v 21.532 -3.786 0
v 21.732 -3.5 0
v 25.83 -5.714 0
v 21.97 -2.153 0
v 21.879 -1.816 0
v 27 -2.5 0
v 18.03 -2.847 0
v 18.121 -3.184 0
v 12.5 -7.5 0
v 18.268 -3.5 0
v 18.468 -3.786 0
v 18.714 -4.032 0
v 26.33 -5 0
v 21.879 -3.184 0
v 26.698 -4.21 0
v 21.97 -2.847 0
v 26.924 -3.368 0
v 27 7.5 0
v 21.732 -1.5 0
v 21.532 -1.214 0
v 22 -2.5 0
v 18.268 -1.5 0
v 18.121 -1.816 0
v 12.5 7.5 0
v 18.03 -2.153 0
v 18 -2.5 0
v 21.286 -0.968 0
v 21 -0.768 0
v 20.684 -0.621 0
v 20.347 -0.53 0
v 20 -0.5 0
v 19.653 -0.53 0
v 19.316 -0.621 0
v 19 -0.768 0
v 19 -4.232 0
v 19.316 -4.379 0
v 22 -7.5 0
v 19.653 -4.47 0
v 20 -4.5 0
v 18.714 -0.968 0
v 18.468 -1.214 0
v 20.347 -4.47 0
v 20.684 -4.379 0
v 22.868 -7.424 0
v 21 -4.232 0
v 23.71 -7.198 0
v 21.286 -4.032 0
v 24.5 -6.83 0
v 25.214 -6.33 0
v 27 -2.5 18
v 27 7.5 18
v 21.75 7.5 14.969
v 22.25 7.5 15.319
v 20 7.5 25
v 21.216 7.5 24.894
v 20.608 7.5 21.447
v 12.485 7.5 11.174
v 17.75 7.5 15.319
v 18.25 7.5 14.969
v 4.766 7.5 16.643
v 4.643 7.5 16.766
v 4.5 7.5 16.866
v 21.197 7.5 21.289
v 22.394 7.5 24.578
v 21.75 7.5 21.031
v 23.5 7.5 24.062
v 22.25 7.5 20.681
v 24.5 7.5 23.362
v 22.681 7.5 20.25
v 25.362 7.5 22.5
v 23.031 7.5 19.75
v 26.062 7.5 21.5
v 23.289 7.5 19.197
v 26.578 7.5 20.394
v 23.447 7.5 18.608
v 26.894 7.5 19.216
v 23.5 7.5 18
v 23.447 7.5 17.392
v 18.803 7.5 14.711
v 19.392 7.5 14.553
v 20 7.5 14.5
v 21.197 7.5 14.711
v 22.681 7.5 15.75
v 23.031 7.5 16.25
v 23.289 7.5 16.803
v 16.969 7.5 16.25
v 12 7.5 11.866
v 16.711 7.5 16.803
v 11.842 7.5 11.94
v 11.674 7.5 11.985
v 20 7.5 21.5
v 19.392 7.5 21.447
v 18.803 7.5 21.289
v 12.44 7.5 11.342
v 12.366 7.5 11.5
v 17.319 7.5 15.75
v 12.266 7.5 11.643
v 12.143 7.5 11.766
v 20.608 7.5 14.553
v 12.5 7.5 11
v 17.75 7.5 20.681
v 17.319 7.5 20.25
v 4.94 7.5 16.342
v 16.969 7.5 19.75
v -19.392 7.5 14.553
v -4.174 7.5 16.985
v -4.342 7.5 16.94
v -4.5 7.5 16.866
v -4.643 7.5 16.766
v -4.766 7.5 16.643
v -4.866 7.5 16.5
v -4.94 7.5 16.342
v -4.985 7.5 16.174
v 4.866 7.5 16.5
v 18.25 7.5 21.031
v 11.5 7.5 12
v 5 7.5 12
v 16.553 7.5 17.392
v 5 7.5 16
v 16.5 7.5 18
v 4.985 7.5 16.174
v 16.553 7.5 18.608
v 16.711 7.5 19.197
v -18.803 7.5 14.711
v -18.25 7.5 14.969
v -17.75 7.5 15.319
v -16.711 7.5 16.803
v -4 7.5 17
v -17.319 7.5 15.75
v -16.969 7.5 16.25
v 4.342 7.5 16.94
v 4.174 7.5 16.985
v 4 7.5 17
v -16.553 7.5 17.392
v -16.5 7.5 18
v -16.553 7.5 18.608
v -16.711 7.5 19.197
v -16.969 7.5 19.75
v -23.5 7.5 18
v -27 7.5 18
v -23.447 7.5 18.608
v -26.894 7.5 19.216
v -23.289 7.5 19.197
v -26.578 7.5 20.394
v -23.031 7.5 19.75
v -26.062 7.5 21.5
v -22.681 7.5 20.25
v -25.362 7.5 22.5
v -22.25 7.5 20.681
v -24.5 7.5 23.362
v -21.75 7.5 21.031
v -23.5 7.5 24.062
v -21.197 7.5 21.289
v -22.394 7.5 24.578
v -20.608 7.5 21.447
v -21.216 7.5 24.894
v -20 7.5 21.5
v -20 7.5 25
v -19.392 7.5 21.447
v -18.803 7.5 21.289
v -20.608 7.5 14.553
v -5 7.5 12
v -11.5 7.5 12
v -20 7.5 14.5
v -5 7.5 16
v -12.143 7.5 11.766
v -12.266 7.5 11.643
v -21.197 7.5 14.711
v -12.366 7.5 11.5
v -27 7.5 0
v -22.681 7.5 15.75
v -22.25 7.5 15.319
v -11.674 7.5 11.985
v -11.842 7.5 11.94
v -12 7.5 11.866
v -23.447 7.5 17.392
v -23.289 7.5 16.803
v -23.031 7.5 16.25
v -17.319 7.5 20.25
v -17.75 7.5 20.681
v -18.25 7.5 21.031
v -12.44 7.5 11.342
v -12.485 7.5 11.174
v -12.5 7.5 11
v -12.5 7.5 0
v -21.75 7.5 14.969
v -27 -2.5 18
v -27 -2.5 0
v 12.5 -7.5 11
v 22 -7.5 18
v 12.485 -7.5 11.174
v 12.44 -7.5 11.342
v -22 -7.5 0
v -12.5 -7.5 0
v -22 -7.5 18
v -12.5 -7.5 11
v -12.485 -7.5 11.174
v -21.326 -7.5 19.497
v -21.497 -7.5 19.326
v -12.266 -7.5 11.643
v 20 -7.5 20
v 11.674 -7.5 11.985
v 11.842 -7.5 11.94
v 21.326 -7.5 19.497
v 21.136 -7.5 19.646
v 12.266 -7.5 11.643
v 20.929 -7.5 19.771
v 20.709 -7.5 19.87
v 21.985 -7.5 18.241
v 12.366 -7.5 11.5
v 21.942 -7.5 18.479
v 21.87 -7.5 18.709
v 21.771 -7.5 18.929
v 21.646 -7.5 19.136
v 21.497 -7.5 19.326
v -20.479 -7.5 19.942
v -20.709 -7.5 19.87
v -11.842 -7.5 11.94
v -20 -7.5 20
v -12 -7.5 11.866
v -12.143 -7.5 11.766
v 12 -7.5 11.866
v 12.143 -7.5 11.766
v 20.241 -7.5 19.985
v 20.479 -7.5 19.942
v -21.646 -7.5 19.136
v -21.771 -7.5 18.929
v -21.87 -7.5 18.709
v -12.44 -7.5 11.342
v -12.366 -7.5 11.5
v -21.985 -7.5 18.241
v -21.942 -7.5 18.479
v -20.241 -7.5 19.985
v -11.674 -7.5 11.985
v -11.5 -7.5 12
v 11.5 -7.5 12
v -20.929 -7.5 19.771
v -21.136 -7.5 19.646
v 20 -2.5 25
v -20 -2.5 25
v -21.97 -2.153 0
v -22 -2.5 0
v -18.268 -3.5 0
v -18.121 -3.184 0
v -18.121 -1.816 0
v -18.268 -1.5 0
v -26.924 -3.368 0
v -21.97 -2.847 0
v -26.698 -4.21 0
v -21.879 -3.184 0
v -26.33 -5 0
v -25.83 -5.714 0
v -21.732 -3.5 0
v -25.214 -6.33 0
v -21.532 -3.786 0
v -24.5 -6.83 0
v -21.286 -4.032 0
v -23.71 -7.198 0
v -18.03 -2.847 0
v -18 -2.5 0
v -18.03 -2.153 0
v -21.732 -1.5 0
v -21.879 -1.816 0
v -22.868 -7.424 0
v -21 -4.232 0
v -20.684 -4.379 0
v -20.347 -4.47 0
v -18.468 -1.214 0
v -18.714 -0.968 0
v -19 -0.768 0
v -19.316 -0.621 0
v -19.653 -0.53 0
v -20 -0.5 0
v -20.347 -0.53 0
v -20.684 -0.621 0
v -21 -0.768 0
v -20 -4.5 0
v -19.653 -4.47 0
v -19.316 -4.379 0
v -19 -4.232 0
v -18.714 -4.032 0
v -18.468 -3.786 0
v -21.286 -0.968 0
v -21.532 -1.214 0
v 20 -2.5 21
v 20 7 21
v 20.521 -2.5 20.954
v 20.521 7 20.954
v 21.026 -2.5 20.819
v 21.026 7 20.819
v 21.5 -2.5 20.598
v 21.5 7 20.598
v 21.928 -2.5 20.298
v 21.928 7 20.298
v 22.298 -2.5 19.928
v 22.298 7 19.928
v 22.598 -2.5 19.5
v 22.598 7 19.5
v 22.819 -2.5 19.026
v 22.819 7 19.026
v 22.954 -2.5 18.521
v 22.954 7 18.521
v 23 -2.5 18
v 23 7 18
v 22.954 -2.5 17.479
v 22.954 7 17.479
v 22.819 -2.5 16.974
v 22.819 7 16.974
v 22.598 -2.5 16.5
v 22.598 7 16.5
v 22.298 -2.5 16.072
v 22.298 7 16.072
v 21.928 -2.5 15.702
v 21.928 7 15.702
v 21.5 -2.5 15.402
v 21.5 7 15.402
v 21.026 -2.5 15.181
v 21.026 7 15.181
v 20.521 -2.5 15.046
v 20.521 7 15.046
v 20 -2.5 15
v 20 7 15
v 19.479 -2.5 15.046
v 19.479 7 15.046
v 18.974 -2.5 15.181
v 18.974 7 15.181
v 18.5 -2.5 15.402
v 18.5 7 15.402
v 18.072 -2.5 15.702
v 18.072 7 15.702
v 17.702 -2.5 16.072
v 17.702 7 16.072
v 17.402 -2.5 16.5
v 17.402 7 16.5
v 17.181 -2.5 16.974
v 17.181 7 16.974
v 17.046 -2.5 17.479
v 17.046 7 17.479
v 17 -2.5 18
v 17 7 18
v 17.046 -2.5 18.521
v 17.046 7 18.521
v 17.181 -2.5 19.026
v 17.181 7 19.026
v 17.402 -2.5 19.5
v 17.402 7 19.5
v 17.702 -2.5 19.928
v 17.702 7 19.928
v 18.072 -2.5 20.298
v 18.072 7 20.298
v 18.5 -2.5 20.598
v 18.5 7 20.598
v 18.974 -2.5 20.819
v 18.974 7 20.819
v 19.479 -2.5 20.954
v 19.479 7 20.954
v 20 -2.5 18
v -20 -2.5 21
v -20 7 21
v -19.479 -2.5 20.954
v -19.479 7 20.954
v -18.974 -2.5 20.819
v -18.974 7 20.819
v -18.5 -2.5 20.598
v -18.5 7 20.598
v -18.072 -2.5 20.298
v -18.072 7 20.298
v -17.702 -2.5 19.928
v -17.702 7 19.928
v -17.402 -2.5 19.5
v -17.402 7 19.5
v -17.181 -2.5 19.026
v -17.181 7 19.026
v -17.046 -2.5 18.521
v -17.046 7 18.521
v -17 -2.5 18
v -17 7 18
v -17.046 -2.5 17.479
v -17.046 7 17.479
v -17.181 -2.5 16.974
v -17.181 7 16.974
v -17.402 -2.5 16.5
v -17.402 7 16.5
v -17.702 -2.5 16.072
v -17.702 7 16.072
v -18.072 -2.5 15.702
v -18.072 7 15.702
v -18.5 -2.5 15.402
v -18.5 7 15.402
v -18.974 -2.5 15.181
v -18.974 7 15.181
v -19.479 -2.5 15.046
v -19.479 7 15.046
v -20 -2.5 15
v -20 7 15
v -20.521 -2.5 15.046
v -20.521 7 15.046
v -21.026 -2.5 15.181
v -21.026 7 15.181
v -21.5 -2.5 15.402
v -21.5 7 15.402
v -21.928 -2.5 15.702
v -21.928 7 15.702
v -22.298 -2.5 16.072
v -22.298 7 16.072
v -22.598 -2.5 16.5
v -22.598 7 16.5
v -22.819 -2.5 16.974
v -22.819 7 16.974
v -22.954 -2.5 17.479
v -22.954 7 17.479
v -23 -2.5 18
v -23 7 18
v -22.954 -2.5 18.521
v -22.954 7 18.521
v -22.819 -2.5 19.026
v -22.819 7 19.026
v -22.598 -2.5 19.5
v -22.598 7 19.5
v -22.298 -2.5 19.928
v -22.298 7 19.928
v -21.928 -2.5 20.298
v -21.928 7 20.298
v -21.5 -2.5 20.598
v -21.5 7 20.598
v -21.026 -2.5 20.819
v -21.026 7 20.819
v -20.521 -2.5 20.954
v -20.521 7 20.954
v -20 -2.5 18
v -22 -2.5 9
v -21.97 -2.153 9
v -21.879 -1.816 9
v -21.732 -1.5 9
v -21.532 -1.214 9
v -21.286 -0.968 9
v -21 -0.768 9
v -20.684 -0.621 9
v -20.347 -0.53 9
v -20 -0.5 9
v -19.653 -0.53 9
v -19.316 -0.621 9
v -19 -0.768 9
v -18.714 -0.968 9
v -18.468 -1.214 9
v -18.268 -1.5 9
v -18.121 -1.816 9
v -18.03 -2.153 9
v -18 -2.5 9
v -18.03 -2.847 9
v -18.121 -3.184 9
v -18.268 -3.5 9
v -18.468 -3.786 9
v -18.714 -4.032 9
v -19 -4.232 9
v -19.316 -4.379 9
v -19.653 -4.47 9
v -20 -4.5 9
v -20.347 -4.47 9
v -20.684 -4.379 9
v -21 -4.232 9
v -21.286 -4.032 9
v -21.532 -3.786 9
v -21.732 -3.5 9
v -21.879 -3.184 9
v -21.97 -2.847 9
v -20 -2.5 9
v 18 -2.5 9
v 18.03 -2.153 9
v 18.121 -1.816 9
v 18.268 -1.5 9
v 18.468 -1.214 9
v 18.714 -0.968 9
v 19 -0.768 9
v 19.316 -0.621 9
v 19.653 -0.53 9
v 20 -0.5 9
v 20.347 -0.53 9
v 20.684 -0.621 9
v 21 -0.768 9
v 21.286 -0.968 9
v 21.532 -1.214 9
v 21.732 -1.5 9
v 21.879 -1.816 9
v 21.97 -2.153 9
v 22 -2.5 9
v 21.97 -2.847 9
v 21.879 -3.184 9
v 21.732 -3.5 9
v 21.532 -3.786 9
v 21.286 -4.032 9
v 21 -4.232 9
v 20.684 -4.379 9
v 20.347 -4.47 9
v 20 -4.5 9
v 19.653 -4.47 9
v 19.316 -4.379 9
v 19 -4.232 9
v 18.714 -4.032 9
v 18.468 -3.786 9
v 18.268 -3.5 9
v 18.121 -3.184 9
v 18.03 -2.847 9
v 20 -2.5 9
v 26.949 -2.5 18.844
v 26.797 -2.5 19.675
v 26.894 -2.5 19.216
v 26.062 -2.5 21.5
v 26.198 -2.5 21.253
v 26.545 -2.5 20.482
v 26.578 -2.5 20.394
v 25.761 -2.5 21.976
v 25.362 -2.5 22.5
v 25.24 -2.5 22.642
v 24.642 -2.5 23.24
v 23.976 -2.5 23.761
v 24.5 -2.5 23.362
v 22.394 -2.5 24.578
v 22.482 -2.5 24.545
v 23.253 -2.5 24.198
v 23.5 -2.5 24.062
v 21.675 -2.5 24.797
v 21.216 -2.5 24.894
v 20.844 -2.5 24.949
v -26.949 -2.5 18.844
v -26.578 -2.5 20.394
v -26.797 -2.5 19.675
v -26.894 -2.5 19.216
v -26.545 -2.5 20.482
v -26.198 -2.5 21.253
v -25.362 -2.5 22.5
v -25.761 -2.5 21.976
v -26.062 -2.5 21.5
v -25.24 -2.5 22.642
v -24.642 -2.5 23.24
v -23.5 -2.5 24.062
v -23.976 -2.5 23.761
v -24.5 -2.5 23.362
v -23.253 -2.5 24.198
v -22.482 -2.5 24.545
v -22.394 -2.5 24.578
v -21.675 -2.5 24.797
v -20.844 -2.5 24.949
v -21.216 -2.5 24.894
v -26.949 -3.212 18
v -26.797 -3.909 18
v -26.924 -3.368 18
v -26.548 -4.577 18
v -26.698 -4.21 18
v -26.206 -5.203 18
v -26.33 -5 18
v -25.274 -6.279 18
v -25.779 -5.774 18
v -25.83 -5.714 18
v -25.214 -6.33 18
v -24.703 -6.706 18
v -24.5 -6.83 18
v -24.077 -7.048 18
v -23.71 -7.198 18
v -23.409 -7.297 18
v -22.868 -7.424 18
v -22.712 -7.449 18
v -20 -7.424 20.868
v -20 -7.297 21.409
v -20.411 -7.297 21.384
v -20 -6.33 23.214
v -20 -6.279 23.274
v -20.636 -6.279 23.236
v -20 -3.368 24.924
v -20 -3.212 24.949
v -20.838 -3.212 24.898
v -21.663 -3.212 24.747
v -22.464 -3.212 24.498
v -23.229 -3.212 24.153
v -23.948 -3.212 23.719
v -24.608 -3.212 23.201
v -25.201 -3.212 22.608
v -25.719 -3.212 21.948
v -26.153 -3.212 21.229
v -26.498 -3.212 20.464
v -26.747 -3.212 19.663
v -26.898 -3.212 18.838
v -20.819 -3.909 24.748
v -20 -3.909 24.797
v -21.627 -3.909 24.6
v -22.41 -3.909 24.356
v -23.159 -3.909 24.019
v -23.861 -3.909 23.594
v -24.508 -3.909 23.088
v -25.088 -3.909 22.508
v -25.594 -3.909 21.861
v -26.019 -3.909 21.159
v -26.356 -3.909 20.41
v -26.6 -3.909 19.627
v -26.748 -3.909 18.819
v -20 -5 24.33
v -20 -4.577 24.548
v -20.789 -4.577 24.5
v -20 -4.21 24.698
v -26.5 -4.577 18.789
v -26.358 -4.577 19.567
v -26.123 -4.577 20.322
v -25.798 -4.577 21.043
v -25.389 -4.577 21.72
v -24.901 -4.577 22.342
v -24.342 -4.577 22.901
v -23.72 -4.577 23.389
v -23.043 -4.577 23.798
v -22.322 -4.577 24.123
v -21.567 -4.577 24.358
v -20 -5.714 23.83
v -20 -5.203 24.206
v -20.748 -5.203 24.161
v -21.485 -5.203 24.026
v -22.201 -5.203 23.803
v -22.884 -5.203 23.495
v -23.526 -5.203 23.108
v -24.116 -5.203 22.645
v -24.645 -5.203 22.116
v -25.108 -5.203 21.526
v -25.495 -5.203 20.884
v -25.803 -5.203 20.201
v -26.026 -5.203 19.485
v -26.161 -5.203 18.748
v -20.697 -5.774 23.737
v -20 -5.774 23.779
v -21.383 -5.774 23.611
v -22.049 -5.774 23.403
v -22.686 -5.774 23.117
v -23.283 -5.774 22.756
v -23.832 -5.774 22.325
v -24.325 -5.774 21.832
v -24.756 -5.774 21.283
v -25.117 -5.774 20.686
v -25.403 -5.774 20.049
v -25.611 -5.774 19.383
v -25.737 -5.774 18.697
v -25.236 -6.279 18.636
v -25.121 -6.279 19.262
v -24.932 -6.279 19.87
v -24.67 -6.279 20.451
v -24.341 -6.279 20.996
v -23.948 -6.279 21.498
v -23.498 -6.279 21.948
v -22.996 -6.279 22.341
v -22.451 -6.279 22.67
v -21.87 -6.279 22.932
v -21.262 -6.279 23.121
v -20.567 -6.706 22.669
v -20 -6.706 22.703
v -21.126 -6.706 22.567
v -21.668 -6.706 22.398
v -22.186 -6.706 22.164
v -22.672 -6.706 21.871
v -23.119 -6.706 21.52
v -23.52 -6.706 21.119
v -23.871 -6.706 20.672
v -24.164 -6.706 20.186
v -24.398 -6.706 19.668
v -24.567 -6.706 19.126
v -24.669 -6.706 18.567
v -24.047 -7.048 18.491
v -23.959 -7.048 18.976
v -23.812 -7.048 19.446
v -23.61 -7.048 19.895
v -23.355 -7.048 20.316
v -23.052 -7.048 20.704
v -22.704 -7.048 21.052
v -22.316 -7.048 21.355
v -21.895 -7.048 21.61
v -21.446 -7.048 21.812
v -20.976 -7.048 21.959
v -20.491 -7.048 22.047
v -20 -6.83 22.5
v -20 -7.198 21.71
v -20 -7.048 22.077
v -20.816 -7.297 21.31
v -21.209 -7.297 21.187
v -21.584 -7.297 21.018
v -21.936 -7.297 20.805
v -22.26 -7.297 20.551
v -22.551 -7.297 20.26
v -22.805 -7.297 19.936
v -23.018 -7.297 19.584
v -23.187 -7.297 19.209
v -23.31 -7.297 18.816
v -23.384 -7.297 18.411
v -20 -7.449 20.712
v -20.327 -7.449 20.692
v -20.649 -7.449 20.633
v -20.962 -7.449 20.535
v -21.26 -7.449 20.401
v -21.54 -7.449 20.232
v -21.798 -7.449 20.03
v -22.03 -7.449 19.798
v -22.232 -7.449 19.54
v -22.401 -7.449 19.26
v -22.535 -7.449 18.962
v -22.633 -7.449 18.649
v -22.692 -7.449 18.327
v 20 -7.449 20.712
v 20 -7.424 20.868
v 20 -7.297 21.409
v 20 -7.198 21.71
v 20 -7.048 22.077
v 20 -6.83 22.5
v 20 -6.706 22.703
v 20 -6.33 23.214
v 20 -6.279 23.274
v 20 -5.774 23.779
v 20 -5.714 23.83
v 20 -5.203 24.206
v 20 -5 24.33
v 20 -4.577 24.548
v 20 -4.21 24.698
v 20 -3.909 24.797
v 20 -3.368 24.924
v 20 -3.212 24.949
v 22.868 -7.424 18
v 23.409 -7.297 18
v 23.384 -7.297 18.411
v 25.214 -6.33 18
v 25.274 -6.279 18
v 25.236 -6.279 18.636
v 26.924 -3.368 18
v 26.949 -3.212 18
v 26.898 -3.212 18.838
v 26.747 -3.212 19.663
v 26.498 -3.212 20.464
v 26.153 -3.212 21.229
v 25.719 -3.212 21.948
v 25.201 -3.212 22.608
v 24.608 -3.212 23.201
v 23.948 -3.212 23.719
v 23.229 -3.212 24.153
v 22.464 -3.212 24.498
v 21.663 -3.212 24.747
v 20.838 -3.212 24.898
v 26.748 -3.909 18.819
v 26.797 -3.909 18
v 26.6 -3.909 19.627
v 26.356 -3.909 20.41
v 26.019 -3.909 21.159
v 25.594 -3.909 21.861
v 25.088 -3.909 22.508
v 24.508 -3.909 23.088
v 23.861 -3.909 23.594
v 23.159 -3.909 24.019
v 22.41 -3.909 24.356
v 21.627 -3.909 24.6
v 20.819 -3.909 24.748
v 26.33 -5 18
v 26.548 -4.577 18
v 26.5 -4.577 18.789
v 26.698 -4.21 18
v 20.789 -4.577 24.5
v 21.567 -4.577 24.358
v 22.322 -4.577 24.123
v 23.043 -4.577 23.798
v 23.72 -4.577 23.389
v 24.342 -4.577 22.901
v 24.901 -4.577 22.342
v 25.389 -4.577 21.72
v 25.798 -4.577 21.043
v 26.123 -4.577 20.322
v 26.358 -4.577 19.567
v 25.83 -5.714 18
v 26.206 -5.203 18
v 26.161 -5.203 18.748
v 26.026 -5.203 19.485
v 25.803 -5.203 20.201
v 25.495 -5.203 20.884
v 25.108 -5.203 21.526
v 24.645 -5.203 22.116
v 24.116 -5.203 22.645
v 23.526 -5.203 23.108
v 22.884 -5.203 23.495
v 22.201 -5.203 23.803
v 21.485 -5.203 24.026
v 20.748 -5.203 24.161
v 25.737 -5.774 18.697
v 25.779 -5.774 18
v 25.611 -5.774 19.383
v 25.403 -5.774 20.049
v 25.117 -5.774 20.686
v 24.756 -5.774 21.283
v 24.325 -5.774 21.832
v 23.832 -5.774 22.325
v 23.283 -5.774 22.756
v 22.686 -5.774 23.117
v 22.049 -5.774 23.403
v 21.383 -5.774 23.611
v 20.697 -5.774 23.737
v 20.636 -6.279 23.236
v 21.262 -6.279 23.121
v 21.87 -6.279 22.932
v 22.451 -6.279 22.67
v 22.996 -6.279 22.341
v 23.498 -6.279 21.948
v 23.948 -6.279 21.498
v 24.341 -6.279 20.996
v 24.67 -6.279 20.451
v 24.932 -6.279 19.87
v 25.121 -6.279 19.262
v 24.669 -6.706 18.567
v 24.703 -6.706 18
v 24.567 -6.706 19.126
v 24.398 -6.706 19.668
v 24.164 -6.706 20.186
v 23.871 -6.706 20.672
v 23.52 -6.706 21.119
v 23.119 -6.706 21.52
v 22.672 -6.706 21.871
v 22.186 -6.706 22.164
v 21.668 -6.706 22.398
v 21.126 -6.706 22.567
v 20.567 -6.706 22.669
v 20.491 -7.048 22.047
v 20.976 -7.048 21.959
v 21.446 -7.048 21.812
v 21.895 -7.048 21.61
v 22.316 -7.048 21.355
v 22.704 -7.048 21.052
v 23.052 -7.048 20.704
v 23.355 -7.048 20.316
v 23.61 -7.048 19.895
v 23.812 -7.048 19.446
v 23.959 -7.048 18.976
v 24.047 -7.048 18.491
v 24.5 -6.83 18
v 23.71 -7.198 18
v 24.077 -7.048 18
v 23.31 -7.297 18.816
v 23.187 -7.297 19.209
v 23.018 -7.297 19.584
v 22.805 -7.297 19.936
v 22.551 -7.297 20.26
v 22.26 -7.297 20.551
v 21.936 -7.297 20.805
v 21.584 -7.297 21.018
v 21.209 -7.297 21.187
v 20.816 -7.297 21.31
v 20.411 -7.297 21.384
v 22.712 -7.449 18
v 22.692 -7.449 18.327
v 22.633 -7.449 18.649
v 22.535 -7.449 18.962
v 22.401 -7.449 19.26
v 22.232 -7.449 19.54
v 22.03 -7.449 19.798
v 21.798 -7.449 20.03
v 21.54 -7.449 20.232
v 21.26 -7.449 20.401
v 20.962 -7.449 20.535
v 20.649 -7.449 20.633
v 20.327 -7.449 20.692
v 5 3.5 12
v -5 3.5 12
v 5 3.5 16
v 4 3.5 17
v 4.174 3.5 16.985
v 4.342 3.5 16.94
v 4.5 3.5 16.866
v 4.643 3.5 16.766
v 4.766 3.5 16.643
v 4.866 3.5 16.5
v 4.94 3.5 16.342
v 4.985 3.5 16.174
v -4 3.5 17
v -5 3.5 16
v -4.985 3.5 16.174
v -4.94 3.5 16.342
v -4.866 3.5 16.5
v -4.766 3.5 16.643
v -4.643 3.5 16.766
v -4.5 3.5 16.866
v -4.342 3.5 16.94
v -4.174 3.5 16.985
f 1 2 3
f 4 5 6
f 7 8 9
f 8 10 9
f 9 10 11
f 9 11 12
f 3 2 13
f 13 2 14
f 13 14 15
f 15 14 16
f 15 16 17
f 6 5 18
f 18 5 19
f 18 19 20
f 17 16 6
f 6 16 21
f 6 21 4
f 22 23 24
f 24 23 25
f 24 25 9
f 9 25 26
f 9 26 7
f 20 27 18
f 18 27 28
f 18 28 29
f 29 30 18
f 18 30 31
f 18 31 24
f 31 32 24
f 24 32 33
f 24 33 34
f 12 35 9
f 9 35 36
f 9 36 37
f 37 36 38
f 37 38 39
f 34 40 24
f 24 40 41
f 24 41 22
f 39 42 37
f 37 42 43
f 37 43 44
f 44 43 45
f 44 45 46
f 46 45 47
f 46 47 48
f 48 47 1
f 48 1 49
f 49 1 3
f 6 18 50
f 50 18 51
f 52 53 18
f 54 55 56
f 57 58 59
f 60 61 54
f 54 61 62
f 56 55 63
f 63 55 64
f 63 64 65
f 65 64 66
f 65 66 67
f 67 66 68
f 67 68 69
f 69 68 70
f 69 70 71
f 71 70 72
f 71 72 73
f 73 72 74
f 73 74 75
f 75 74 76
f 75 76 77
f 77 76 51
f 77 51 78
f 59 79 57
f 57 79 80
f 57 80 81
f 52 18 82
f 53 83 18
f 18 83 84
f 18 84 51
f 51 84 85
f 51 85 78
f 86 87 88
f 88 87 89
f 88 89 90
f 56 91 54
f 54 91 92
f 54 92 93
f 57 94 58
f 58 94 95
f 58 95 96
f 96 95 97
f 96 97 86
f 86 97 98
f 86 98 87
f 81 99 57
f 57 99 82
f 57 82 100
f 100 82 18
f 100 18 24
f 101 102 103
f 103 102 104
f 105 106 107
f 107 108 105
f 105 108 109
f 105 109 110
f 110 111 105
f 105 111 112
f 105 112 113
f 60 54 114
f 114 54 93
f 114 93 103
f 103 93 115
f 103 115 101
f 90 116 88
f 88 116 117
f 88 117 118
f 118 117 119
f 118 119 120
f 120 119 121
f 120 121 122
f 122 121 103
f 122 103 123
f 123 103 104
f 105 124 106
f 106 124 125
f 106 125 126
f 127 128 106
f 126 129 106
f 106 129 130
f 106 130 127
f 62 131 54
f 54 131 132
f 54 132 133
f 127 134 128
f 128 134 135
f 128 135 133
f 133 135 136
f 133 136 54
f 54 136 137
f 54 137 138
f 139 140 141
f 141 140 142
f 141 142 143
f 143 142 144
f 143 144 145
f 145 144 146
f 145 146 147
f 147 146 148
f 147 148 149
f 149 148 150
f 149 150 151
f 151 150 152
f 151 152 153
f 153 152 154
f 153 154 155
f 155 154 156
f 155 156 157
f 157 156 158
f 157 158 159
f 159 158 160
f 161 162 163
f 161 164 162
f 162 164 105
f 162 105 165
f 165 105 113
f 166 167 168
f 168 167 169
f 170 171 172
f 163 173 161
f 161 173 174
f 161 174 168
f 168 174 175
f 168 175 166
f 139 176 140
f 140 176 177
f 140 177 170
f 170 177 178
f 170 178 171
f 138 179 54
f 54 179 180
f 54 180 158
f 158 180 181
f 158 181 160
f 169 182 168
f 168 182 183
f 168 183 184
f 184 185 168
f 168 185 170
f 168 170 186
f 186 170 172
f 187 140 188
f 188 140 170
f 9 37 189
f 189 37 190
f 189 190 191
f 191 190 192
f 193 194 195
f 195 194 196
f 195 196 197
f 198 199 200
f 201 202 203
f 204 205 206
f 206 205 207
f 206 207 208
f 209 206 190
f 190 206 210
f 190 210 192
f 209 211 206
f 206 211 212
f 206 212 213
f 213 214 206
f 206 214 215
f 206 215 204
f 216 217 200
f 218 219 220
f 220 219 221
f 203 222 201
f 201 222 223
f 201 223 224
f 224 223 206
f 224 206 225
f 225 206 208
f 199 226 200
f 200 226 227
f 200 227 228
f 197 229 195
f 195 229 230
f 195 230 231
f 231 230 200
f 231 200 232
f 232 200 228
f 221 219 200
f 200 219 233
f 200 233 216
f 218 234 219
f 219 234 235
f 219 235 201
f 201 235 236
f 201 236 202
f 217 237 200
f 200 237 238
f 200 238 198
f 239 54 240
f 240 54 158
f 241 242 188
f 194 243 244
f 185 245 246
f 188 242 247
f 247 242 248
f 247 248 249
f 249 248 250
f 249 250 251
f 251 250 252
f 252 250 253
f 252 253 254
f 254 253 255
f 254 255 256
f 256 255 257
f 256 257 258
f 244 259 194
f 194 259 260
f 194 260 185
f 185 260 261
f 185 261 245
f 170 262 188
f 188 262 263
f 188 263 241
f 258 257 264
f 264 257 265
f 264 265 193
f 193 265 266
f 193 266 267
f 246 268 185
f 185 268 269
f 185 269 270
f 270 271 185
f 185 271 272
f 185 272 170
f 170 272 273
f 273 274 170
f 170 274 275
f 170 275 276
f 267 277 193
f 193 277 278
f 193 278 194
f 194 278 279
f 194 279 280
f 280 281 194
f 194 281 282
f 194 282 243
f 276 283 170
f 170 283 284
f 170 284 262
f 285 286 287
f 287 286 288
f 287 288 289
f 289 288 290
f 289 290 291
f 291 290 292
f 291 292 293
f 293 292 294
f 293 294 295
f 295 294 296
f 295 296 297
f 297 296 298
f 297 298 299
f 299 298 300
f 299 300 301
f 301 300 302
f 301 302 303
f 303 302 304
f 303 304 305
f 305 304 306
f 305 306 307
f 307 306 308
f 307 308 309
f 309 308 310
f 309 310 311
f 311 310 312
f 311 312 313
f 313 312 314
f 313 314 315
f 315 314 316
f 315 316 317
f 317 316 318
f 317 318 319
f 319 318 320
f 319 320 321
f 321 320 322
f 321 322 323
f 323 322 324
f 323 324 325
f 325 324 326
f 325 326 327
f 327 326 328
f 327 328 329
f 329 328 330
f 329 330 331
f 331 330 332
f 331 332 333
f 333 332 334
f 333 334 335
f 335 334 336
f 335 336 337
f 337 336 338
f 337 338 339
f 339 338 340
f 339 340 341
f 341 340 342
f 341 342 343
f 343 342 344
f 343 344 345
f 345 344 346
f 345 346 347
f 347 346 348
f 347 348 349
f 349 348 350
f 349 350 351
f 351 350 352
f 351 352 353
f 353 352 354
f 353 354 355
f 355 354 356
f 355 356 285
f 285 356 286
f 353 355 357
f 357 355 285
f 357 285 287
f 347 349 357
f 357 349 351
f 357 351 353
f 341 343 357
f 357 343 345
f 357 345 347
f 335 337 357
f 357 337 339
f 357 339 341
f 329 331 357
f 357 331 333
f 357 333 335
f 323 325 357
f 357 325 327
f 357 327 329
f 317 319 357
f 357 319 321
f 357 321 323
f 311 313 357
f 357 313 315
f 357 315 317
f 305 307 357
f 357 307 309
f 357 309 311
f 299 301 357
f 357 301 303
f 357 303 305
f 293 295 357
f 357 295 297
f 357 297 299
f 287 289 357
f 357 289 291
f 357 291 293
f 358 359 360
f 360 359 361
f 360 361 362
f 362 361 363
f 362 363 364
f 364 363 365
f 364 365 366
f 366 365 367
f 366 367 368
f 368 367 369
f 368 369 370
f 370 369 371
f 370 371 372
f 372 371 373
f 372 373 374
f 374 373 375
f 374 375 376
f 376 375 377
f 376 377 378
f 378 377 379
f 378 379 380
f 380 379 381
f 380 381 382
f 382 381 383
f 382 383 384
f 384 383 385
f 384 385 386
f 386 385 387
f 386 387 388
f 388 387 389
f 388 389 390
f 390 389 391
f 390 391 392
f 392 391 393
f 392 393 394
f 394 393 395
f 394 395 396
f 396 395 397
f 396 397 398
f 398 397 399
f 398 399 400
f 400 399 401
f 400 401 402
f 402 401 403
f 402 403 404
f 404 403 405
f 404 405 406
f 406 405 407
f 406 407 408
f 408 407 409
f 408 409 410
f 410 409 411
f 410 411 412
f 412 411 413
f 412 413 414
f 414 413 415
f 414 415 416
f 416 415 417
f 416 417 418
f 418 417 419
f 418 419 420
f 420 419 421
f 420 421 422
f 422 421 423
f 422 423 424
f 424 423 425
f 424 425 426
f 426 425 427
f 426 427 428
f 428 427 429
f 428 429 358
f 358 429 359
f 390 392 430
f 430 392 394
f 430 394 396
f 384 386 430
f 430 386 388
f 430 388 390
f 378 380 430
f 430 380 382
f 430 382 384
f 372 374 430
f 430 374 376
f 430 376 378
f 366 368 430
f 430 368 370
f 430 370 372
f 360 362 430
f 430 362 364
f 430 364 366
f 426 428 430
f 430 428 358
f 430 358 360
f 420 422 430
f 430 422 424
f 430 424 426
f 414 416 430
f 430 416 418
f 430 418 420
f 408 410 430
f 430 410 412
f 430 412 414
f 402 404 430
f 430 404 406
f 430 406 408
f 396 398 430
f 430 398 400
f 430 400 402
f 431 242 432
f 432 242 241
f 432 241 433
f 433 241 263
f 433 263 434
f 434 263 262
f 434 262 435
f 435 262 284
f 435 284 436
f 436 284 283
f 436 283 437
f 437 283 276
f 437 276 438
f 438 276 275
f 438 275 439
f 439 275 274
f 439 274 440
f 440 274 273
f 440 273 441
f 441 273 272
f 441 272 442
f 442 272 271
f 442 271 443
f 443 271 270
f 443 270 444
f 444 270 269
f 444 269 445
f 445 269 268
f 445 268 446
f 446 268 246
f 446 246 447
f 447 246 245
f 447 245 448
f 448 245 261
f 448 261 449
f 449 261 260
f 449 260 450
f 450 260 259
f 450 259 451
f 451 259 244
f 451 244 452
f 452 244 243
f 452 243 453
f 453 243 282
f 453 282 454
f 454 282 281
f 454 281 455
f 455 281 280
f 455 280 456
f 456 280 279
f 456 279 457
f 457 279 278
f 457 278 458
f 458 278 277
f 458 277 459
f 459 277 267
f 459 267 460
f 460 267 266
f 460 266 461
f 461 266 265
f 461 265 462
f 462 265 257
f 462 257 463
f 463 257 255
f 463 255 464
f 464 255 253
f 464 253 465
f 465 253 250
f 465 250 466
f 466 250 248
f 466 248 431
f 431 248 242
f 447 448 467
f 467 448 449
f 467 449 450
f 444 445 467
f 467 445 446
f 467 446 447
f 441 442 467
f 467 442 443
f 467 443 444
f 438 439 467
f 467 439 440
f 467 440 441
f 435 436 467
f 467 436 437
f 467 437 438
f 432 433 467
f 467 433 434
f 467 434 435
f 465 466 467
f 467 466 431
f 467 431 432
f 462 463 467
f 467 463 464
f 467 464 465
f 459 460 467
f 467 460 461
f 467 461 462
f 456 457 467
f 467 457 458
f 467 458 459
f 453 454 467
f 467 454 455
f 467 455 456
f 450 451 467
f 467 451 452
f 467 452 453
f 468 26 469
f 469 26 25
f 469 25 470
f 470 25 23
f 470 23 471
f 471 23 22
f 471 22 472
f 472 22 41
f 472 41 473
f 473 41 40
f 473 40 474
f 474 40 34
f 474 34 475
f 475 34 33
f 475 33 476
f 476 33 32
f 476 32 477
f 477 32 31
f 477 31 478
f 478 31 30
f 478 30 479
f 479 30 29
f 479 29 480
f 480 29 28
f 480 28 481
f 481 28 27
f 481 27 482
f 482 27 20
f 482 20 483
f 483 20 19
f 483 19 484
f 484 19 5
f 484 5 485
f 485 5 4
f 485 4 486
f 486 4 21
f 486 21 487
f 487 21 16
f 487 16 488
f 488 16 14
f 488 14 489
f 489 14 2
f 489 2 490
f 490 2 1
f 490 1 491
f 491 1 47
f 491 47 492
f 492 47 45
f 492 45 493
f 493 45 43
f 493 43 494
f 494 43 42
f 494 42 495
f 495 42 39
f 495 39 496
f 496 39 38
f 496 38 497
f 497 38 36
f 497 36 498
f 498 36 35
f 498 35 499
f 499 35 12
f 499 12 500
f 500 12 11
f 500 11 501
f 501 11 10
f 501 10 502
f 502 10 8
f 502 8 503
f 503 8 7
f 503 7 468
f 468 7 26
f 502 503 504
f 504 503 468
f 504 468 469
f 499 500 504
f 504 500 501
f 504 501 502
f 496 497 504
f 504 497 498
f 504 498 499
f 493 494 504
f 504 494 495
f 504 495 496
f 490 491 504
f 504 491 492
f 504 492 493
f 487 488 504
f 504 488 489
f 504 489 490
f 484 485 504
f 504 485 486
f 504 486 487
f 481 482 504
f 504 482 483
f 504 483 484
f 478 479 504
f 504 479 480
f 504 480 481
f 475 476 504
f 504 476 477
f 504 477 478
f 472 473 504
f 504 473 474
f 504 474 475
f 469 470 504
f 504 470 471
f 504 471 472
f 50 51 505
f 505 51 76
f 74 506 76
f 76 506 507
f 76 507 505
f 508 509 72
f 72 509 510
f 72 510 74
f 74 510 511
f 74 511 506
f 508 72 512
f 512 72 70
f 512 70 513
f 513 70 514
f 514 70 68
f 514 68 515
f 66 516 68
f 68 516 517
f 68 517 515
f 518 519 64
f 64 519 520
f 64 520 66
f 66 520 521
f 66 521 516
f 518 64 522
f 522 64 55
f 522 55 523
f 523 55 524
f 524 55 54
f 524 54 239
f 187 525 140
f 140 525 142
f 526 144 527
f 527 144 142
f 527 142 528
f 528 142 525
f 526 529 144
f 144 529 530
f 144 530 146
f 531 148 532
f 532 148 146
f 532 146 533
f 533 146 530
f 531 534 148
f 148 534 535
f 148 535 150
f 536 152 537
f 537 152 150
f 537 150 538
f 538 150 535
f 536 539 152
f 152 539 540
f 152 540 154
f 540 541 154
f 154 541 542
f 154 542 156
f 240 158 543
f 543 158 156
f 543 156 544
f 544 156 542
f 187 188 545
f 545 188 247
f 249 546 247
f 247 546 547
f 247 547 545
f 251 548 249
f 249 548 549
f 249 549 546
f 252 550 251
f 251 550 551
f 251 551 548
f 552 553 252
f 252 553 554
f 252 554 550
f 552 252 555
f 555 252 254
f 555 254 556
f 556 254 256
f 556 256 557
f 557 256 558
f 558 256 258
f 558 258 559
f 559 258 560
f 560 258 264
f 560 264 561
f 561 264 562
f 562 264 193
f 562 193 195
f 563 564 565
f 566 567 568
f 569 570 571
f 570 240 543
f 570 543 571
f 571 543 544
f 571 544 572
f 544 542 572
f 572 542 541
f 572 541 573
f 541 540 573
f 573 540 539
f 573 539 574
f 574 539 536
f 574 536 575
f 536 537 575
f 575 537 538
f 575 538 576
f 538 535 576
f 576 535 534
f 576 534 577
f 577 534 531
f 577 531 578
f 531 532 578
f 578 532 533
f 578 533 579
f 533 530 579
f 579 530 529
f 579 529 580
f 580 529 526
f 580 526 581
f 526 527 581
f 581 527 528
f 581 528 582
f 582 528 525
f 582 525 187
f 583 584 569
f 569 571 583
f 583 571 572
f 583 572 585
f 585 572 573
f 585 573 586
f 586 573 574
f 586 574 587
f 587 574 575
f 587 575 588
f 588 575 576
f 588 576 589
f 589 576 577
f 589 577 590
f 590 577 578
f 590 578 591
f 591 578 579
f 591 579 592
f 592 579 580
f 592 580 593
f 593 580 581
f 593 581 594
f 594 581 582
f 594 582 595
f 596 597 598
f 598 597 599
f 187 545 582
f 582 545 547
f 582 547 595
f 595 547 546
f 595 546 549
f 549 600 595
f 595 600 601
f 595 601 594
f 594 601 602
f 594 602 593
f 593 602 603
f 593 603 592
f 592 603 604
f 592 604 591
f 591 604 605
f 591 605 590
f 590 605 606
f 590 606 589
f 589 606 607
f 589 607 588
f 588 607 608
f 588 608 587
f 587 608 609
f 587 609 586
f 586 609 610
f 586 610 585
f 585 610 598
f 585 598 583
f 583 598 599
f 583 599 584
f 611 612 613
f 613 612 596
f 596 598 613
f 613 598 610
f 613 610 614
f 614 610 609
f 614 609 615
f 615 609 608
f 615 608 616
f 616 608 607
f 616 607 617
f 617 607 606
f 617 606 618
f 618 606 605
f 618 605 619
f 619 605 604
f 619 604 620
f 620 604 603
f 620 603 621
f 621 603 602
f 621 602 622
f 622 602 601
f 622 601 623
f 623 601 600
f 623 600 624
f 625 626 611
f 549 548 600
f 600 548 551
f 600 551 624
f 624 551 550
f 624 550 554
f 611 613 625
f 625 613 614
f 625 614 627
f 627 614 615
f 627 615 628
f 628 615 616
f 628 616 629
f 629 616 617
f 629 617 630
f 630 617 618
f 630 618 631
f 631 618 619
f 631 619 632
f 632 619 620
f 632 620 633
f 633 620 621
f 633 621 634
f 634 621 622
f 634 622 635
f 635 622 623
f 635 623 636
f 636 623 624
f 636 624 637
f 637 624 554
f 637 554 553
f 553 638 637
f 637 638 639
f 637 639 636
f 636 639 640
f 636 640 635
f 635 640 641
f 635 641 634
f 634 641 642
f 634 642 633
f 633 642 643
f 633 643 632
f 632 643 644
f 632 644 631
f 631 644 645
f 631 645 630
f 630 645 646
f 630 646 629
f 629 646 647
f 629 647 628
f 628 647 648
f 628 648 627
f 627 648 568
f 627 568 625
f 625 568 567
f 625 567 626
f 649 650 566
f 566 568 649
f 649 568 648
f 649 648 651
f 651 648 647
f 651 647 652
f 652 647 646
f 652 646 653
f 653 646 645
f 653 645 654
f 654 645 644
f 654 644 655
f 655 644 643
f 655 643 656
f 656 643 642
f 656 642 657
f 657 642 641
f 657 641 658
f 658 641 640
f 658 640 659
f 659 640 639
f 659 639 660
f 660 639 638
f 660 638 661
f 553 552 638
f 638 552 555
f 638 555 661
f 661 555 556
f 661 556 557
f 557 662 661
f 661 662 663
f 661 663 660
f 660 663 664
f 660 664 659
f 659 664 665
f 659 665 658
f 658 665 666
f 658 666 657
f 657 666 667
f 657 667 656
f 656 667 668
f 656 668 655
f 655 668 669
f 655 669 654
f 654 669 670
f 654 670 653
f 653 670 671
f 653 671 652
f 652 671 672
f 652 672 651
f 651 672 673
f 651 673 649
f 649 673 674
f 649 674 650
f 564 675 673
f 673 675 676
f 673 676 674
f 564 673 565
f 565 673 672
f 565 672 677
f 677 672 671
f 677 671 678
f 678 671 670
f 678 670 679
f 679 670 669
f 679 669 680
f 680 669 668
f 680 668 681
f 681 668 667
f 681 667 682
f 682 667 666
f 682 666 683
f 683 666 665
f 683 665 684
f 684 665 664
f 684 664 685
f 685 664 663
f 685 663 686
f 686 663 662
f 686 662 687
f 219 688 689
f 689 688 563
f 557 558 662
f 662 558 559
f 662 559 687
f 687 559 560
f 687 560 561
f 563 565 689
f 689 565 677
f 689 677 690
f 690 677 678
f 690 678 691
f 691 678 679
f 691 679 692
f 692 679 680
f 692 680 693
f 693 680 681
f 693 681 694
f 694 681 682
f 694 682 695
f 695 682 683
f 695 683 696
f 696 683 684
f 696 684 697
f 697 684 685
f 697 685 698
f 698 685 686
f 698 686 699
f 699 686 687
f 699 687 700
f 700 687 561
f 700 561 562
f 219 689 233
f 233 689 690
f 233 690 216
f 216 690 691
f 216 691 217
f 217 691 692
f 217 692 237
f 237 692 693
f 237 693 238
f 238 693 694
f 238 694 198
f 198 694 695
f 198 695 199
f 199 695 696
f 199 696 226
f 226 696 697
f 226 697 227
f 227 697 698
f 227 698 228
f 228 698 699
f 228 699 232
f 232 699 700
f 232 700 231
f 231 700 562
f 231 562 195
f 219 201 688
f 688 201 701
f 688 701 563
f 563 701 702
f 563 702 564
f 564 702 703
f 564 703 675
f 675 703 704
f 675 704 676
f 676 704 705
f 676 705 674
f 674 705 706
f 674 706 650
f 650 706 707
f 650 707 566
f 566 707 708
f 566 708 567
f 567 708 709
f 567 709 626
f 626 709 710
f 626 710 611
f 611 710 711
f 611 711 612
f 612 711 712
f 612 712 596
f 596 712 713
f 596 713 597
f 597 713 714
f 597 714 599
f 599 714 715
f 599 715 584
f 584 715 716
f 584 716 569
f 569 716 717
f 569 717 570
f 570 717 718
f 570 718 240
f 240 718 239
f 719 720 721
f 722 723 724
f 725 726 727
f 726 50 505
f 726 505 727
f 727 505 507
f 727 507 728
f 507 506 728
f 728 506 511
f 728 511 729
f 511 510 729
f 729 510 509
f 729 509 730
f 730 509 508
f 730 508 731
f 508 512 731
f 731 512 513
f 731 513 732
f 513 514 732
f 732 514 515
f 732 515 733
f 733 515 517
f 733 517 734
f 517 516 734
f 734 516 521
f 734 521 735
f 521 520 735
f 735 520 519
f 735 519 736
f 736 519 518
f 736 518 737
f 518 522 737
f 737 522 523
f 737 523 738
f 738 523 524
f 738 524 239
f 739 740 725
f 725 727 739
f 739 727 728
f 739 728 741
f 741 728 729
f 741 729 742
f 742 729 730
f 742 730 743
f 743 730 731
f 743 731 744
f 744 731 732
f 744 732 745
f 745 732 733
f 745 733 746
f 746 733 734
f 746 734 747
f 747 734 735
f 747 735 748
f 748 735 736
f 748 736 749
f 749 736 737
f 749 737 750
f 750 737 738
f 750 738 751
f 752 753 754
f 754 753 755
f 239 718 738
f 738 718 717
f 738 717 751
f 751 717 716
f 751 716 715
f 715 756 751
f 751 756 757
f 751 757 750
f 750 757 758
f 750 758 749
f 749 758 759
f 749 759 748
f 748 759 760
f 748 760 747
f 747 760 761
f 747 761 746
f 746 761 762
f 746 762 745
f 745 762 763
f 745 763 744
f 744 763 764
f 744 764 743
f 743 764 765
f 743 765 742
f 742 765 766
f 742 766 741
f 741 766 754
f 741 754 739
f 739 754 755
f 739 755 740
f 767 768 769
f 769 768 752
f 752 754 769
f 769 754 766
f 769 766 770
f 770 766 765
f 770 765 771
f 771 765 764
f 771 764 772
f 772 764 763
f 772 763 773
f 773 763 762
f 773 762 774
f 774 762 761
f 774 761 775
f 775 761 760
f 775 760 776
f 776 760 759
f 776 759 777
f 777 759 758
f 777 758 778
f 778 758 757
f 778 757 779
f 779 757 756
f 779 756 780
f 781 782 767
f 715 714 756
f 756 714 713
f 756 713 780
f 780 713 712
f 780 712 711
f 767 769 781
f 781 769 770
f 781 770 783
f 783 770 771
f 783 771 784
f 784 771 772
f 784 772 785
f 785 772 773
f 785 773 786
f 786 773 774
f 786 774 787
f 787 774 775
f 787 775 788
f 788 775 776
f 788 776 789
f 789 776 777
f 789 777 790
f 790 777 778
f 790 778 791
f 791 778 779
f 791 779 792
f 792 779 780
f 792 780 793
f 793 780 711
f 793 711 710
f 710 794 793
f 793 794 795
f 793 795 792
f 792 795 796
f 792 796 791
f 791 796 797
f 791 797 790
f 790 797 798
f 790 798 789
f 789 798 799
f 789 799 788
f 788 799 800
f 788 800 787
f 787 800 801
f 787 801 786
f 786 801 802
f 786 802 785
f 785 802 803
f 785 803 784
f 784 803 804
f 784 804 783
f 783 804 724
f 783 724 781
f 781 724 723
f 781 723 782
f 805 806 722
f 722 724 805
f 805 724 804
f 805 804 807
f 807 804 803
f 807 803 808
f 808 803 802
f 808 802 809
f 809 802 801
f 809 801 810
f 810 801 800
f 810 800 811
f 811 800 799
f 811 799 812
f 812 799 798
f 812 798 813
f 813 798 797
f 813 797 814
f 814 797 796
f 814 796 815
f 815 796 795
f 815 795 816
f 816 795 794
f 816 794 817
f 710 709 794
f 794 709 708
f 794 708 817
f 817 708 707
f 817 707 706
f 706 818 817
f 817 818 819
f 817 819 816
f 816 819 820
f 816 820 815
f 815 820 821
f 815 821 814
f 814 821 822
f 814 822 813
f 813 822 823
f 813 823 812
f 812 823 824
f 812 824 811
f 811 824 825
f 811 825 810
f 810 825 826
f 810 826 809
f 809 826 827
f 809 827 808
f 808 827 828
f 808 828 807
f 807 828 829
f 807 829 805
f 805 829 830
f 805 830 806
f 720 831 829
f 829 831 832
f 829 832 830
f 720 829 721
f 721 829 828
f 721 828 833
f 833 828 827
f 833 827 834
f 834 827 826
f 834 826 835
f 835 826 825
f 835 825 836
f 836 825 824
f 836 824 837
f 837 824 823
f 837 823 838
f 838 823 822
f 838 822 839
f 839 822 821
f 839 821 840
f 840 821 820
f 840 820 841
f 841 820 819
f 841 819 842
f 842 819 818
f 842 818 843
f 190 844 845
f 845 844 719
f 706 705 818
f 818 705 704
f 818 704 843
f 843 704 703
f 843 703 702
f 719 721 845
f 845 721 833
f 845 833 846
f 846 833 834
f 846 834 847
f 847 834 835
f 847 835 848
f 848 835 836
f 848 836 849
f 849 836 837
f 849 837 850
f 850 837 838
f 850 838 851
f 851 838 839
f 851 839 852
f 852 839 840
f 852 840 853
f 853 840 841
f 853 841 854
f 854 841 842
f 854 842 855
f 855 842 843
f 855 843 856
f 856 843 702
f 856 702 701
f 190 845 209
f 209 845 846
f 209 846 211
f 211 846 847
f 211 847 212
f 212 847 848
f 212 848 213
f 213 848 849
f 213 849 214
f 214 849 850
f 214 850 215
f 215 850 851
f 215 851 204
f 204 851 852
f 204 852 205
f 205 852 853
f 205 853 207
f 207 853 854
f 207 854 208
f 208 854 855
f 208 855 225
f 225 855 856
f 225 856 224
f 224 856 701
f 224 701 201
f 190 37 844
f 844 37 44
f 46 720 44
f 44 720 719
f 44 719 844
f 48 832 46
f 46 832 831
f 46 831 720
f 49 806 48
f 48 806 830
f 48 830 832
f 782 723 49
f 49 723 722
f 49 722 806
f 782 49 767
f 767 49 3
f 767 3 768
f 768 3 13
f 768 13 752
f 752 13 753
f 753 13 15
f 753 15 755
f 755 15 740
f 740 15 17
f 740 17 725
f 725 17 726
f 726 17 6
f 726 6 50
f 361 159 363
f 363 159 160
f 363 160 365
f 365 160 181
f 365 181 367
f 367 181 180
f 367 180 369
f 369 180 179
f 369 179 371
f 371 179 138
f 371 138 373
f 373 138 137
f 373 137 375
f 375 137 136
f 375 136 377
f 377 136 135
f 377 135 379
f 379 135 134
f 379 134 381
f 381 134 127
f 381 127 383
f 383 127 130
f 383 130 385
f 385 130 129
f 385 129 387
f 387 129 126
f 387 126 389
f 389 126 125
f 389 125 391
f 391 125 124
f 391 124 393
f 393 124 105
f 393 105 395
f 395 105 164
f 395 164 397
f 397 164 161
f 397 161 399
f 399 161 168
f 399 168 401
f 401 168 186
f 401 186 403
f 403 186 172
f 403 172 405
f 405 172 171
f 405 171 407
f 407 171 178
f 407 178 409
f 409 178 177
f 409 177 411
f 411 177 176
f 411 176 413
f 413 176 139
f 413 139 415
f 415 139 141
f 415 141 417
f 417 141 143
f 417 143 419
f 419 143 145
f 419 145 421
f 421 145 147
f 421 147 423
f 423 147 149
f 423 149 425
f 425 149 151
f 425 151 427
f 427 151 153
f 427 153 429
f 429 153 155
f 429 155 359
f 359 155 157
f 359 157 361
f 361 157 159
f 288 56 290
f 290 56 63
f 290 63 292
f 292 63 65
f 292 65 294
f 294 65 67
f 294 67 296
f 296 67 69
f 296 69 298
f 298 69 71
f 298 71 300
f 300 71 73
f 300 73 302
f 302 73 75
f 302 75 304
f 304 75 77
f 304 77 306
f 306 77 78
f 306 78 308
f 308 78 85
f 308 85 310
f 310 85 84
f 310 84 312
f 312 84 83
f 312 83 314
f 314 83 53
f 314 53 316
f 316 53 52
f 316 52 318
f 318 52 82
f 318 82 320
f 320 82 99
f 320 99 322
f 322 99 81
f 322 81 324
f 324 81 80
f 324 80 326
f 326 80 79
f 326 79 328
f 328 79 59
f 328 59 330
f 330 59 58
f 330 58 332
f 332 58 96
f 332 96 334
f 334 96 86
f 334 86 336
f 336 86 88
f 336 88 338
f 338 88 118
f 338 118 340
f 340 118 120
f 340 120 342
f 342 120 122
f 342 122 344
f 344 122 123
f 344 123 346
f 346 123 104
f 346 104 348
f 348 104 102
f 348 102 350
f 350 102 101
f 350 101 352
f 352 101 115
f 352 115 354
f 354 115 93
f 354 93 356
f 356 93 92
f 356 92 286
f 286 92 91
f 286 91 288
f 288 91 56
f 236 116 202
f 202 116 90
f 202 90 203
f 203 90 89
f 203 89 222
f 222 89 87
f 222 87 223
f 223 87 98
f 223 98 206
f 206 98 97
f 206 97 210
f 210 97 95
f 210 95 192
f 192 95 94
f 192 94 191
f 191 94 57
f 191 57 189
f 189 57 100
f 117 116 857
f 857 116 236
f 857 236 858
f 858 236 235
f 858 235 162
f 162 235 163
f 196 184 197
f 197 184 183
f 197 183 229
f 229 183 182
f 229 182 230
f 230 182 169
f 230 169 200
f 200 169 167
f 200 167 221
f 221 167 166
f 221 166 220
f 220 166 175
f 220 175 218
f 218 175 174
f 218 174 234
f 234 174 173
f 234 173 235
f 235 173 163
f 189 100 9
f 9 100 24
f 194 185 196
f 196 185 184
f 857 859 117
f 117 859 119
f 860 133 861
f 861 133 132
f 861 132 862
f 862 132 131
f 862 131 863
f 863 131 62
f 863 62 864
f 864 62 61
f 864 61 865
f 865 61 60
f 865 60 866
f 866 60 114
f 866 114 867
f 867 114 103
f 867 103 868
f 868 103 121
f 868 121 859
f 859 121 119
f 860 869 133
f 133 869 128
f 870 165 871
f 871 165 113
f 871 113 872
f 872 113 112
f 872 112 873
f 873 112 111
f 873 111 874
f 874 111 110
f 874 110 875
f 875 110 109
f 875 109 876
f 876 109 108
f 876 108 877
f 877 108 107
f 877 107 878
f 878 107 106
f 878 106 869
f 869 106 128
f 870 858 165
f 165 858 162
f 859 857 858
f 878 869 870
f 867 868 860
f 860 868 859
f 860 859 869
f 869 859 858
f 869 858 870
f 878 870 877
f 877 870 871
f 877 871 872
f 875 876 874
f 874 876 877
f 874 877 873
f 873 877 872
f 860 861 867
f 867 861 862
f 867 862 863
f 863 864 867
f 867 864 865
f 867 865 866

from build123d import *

# Parameters (mm, degrees)
SKETCH_1_W                = 54
SKETCH_1_H                = 15
EXTRUDE_1_DEPTH           = 25
SKETCH_2_R                = 3
CUT_EXTRUDE_4_DEPTH       = 10
SKETCH_3_R                = 2
CUT_EXTRUDE_5_DEPTH       = 9
FILLET_1_R                = 7
FILLET_2_R                = 5
CHAMFER_1_SIZE            = 0.5
CUT_EXTRUDE_11_DEPTH      = 40.736632973
CUT_EXTRUDE_11_DEPTH_BACK = 40.736632973
CUT_EXTRUDE_12_DEPTH      = 4


with BuildPart() as part:
    # 草图1 → 凸台-拉伸1 (new body)
    with BuildSketch(Plane.XY):
        Rectangle(SKETCH_1_W, SKETCH_1_H)
    extrude(amount=EXTRUDE_1_DEPTH)

    # 草图2 → 切除-拉伸4 (cut)
    with BuildSketch(Plane.XZ.offset(-7.5)):
        with Locations(Location((-20, 18, 0), (0, 0, 270))):
            Circle(SKETCH_2_R)
        with Locations(Location((20, 18, 0), (0, 0, 90))):
            Circle(SKETCH_2_R)
    extrude(amount=CUT_EXTRUDE_4_DEPTH, mode=Mode.SUBTRACT)

    # 草图3 → 切除-拉伸5 (cut)
    with BuildSketch(Plane(origin=(0, 0, 0), x_dir=(-1, 0, 0), z_dir=(0, 0, -1))):
        with Locations((-20, -2.5)):
            Circle(SKETCH_3_R)
        with Locations(Location((20, -2.5, 0), (0, 0, 180))):
            Circle(SKETCH_3_R)
    extrude(amount=-CUT_EXTRUDE_5_DEPTH, mode=Mode.SUBTRACT)

    # 圆角1
    fillet_1_edges = [part.edges().sort_by_distance(p)[0] for p in [
        (-27, 0, 25),
        (27, 0, 25),
    ]]
    fillet(fillet_1_edges, radius=FILLET_1_R)

    # 圆角2
    fillet_2_edges = [part.edges().sort_by_distance(p)[0] for p in [
        (0, -7.5, 25),
        (27, -7.5, 9),
        (-27, -7.5, 9),
        (-24.949747468, -7.5, 22.949747468),
        (24.949747468, -7.5, 22.949747468),
    ]]
    fillet(fillet_2_edges, radius=FILLET_2_R)

    # 倒角1
    chamfer_1_edges = [part.edges().sort_by_distance(p)[0] for p in [
        (-20, 7.5, 21),
        (20, 7.5, 15),
    ]]
    chamfer(chamfer_1_edges, length=CHAMFER_1_SIZE)

    # 草图4 → 切除-拉伸11 (cut, two sides: drawn at the far end of the back side and taken through both)
    with BuildSketch(Plane(origin=(0, 7.5, 0), x_dir=(1, 0, 0), z_dir=(0, 1, 0)).offset(-CUT_EXTRUDE_11_DEPTH_BACK)):
        with BuildLine():
            Line((-11.5, -12), (11.5, -12))
            ThreePointArc((11.5, -12), (12.207106781, -11.707106781), (12.5, -11))
            Line((12.5, -11), (12.5, 3))
            ThreePointArc((12.5, 3), (12.207106781, 3.707106781), (11.5, 4))
            Line((11.5, 4), (-11.5, 4))
            ThreePointArc((-11.5, 4), (-12.207106781, 3.707106781), (-12.5, 3))
            Line((-12.5, 3), (-12.5, -11))
            ThreePointArc((-12.5, -11), (-12.207106781, -11.707106781), (-11.5, -12))
        make_face()
    extrude(amount=CUT_EXTRUDE_11_DEPTH + CUT_EXTRUDE_11_DEPTH_BACK, mode=Mode.SUBTRACT)

    # 草图5 → 切除-拉伸12 (cut)
    with BuildSketch(Plane(origin=(0, 7.5, 0), x_dir=(1, 0, 0), z_dir=(0, 1, 0))):
        with BuildLine():
            Line((-4, -17), (4, -17))
            ThreePointArc((4, -17), (4.707106781, -16.707106781), (5, -16))
            Line((5, -16), (5, -12))
            Line((5, -12), (-5, -12))
            Line((-5, -12), (-5, -16))
            ThreePointArc((-5, -16), (-4.707106781, -16.707106781), (-4, -17))
        make_face()
    extrude(amount=-CUT_EXTRUDE_12_DEPTH, mode=Mode.SUBTRACT)


solid = part.part
